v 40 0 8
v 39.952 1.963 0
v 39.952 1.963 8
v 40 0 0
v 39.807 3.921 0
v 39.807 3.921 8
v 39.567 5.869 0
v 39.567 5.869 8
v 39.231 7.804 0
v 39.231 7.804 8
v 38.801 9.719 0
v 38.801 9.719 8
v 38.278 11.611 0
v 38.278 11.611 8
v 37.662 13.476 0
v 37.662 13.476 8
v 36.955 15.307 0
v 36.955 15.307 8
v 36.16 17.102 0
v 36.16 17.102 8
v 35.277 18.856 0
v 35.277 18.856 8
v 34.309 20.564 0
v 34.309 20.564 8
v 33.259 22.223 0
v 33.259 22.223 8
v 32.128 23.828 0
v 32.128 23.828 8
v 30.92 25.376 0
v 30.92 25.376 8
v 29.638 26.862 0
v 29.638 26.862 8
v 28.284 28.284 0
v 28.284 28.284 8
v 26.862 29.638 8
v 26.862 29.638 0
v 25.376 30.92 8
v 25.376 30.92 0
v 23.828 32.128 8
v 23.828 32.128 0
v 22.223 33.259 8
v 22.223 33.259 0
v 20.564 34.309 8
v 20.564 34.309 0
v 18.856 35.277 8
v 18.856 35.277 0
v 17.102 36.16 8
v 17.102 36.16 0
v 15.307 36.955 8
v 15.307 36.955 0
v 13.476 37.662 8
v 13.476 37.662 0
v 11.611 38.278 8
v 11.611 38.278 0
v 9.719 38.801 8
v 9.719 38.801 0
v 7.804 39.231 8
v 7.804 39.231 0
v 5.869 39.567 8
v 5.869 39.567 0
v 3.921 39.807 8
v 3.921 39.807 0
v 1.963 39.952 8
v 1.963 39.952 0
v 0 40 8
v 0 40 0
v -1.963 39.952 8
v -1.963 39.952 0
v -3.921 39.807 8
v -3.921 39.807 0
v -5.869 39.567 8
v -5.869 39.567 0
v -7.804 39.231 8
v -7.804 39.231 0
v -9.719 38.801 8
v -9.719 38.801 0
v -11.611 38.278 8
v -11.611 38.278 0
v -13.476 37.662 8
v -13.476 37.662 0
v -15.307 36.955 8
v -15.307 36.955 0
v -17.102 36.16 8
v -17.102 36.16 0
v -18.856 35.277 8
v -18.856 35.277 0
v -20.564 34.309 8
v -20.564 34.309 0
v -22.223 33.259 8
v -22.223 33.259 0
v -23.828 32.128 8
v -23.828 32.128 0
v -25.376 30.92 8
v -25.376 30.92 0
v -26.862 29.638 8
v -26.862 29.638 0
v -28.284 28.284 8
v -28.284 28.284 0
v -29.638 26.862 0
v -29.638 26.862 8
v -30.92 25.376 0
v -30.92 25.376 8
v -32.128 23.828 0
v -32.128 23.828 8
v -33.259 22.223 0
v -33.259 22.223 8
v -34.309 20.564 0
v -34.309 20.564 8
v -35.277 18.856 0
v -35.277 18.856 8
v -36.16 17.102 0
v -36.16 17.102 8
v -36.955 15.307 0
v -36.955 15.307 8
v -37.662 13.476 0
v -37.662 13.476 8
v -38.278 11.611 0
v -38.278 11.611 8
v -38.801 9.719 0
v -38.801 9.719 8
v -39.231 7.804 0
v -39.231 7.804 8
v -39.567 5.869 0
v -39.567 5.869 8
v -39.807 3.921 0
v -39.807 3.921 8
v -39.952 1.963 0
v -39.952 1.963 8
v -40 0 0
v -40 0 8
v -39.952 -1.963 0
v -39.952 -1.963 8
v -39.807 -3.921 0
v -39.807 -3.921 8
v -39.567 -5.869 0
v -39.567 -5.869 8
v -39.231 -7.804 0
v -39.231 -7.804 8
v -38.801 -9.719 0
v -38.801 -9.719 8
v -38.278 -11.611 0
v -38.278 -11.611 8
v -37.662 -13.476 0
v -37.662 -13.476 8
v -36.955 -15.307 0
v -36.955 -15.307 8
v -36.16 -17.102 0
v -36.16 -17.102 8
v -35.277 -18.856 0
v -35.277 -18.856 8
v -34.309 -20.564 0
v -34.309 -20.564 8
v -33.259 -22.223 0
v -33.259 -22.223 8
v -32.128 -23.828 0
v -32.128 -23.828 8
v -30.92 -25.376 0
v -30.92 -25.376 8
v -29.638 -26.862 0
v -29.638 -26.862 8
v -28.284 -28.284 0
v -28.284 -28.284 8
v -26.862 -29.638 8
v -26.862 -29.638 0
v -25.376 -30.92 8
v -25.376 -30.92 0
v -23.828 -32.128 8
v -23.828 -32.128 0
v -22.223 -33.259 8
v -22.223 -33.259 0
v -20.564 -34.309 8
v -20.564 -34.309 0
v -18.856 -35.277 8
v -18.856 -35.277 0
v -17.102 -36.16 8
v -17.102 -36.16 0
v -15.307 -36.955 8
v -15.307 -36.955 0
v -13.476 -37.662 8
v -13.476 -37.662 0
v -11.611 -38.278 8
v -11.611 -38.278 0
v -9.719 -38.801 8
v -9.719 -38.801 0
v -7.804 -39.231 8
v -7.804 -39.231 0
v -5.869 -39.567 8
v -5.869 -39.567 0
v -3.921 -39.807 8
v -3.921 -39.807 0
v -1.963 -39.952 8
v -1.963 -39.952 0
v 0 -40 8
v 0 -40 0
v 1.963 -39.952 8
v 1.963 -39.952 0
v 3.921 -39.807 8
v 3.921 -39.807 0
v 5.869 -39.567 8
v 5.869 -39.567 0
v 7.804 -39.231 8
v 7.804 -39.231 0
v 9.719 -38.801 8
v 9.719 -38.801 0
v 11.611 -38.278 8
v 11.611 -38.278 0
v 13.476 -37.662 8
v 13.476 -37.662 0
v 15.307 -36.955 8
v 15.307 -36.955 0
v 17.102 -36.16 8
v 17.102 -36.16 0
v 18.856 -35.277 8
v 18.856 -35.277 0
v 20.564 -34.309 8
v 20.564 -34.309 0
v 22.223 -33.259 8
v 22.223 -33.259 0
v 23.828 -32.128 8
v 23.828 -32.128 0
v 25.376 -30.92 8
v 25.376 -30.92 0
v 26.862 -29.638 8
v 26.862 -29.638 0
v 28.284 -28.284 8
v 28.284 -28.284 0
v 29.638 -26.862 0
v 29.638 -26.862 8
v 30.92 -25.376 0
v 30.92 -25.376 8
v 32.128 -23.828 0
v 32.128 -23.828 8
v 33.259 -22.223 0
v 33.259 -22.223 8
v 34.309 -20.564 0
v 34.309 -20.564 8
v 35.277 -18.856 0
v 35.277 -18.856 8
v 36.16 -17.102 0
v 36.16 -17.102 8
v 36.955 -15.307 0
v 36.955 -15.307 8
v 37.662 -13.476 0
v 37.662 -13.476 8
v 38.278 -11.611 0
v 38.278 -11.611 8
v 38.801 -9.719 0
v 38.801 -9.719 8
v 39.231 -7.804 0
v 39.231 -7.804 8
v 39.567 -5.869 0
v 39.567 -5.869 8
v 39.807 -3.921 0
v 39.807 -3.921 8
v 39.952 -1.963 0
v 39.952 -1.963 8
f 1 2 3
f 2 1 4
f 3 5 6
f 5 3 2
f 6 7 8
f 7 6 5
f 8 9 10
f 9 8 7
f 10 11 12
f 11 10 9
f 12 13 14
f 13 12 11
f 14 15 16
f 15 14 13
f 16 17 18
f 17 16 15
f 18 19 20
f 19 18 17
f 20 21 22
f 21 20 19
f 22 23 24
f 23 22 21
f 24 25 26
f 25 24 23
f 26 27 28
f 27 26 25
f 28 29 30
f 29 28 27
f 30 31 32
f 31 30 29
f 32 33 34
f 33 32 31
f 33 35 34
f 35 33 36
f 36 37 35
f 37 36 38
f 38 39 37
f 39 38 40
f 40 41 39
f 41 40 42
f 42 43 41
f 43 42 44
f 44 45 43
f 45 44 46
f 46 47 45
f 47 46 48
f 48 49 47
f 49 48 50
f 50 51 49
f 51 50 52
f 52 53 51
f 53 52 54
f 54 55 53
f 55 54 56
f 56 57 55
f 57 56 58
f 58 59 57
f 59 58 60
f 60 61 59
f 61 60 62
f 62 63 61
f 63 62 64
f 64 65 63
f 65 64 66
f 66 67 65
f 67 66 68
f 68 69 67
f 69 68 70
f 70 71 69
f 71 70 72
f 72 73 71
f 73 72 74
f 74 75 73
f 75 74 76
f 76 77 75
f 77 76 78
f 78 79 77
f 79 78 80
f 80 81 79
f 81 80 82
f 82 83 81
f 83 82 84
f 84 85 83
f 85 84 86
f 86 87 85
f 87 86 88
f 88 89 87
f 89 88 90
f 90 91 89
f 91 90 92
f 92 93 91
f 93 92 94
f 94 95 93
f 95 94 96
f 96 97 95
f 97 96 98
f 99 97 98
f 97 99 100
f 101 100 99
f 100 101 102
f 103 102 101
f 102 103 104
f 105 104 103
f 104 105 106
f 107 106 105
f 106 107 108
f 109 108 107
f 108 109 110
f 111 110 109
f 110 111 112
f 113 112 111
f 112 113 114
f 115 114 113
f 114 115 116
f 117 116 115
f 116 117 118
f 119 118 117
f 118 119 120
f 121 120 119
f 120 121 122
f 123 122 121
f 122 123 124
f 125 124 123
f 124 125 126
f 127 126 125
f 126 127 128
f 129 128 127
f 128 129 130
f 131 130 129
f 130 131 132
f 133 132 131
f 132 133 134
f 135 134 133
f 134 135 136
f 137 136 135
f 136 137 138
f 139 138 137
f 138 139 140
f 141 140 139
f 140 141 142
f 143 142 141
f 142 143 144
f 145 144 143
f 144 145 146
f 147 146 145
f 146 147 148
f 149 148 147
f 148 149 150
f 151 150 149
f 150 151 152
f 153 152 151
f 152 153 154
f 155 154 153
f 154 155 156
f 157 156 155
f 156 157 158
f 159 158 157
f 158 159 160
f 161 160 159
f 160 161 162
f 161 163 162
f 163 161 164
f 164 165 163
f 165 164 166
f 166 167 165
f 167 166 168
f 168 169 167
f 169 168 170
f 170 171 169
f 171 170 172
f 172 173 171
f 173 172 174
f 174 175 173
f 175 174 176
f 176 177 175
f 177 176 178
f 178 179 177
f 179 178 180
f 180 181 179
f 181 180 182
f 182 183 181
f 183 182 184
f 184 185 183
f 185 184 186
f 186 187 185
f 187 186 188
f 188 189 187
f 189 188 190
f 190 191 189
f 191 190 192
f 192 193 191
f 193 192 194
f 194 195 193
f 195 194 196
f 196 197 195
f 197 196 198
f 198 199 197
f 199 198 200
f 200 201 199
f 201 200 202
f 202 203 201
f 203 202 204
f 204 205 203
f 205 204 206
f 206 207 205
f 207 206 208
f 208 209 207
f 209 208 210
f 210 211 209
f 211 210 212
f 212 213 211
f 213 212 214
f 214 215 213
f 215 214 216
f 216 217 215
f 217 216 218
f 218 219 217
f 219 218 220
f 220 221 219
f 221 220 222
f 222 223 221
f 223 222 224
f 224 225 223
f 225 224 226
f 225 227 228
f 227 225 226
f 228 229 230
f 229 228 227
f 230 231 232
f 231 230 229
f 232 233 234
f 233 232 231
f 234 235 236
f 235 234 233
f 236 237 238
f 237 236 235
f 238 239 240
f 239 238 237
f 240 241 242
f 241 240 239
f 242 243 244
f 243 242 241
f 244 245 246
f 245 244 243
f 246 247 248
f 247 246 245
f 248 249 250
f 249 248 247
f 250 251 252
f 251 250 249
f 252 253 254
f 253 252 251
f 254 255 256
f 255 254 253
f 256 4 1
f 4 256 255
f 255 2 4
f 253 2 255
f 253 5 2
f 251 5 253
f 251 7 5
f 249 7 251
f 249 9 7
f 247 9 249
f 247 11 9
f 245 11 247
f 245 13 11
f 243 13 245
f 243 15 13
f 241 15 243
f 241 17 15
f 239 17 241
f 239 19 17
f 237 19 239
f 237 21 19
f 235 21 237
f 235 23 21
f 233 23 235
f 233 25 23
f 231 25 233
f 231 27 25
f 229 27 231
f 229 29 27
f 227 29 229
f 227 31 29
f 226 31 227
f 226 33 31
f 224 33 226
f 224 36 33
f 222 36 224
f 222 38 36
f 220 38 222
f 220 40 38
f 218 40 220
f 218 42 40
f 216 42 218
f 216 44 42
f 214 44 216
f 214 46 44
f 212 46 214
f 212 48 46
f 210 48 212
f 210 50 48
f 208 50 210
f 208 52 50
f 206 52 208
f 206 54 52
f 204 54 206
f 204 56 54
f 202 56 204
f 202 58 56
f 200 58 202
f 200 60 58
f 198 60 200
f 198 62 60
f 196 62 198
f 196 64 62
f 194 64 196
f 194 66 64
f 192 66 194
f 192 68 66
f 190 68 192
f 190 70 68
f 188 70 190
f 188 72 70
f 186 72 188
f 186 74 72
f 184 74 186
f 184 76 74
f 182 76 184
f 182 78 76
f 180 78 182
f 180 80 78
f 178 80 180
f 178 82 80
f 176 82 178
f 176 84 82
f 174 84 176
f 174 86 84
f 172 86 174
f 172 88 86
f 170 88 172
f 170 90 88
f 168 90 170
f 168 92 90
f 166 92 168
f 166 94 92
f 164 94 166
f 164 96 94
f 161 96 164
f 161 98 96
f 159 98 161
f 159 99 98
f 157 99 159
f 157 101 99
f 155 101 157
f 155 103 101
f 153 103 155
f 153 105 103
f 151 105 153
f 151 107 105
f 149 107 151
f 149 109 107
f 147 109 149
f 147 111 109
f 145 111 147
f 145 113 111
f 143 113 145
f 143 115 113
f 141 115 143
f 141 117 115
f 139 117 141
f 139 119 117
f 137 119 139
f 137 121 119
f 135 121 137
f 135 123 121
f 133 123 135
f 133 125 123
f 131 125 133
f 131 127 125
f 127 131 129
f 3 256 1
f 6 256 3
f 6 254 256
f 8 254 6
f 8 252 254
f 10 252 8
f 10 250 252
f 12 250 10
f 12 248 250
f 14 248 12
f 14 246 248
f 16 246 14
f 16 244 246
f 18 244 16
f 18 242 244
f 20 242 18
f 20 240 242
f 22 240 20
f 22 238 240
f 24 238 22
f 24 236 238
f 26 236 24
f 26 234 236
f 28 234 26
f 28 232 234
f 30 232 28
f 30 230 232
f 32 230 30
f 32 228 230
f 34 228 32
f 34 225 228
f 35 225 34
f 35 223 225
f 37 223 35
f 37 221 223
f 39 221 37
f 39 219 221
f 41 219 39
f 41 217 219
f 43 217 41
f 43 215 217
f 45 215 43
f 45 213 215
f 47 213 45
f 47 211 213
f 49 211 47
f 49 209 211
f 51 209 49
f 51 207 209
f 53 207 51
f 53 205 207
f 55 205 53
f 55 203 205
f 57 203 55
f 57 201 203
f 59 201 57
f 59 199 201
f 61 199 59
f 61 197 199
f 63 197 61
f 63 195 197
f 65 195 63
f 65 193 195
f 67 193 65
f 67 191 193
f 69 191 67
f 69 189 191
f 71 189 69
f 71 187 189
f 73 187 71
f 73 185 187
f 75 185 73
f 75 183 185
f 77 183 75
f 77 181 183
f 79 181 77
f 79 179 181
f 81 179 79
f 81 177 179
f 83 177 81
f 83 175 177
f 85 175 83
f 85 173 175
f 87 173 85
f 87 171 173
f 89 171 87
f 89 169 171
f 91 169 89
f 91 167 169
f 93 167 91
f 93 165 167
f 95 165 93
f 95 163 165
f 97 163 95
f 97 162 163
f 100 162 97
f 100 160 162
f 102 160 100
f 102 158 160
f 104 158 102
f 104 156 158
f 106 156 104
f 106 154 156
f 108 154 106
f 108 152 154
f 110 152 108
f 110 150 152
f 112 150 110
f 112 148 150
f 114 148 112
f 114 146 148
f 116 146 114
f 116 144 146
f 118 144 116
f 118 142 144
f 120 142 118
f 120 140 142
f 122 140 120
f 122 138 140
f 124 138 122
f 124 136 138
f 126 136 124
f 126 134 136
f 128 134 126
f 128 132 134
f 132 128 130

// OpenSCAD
// test_disk.scad
// Ground truth: 80mm diameter disk
// Validates: circular edge accuracy and radial scale uniformity

diameter = 80;
height   = 8;

cylinder(h=height, d=diameter, $fn=128);
